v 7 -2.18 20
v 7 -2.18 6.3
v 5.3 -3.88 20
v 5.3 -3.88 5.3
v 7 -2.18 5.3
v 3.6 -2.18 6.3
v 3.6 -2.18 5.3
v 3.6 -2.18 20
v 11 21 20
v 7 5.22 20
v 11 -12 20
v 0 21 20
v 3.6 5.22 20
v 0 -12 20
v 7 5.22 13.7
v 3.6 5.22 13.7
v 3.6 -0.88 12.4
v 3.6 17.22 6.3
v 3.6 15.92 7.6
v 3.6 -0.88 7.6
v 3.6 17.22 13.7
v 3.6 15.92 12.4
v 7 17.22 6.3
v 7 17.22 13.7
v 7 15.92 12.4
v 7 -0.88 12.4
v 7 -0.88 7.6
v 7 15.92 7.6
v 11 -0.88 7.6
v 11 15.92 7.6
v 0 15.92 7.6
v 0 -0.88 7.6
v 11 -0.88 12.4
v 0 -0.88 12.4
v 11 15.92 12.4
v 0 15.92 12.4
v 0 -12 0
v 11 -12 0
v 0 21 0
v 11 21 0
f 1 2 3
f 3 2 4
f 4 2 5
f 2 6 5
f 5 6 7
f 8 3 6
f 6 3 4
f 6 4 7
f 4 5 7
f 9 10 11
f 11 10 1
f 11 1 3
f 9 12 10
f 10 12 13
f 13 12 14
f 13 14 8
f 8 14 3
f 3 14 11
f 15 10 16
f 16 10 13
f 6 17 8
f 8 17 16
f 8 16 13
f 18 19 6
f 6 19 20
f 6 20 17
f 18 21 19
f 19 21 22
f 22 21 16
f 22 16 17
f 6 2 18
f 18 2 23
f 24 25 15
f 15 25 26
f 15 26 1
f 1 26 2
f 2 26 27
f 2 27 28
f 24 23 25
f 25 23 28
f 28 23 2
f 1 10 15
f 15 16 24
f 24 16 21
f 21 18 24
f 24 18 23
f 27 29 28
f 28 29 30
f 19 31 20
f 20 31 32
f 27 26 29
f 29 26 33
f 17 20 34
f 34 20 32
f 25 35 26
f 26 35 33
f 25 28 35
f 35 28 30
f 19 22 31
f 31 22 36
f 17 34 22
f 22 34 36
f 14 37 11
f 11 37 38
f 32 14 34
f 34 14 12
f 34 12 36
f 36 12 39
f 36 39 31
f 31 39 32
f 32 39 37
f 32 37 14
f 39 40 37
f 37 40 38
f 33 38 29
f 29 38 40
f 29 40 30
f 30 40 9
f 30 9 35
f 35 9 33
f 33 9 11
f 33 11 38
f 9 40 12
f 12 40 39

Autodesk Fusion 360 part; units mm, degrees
sketch "Plate" plane through (0, 0, 0) normal (0, 1, 0) x (1, 0, 0)
  line L0 (0, 0) -> (11, 0)
  line L1 (11, 0) -> (11, -20)
  line L2 (11, -20) -> (0, -20)
  line L3 (0, -20) -> (0, 0)
  dimension "d174" = 11
  dimension "d175" = 20
extrude "Plate (1)" add sketch "Plate" along normal mid plane 33 from surface at 4.5
sketch "Screw hole" plane through (0, 0, 0) normal (0, 1, 0) x (1, 0, 0)
  line L0 (-1, -7.6) -> (12, -7.6)
  line L1 (12, -7.6) -> (12, -12.4)
  line L2 (12, -12.4) -> (-1, -12.4)
  line L3 (-1, -12.4) -> (-1, -7.6)
  dimension "d179" = 12
  dimension "d180" = 7.6
  dimension "d181" = 13
  dimension "d182" = 4.8
extrude "Screw hole (1)" cut sketch "Screw hole" along normal mid plane 16.8 from surface at 7.52
sketch "Nut cavity" plane through (0, 0, 0) normal (0, 1, 0) x (1, 0, 0)
  line L0 (3.6, -6.3) -> (7, -6.3)
  line L1 (7, -6.3) -> (7, -13.7)
  line L2 (7, -13.7) -> (3.6, -13.7)
  line L3 (3.6, -13.7) -> (3.6, -6.3)
  dimension "d186" = 7
  dimension "d187" = 6.3
  dimension "d188" = 3.4
  dimension "d189" = 7.4
extrude "Nut cavity (1)" cut sketch "Nut cavity" along normal mid plane 19.4 from surface at 7.52
sketch "Nut entry" plane through (0, 0, 0) normal (0, 1, 0) x (1, 0, 0)
  line L0 (3.6, -12.7) -> (7, -12.7)
  line L1 (7, -12.7) -> (7, -21)
  line L2 (7, -21) -> (3.6, -21)
  line L3 (3.6, -21) -> (3.6, -12.7)
  dimension "d193" = 7
  dimension "d194" = 12.7
  dimension "d195" = 3.4
  dimension "d196" = 8.3
extrude "Nut entry (1)" cut sketch "Nut entry" along normal mid plane 7.4 from surface at 1.52
sketch "Cavity roof" plane through (0, 0, 0) normal (0, 0, 1) x (1, 0, 0)
  line L0 (3.6, -2.18) -> (7, -2.18)
  line L1 (7, -2.18) -> (5.3, -3.88)
  line L2 (5.3, -3.88) -> (3.6, -2.18)
  dimension "d200" = 3.6
  dimension "d201" = 2.18
  dimension "d202" = 7
  dimension "d203" = 5.3
  dimension "d204" = 1.7
extrude "Cavity roof (1)" cut sketch "Cavity roof" along normal mid plane 15.7 from surface at 13.15
equation "bracketWidth = 24.0 mm" comment "bracket width across the upright"
equation "plateHeight = 20.0 mm" comment "plate height"
equation "plateInboardExtension = 9.0 mm" comment "extra plate toward the desk centre, where the channel reaches"
equation "boardThickness = 6.0 mm" comment "measured SKADIS panel thickness"
equation "screwLength = 15.0 mm" comment "measured decorative M4 screw"
equation "screwDiameter = 4.0 mm" comment "M4 shank"
equation "screwClearance = 0.8 mm" comment "slack around the shank"
equation "screwTipClearance = 2.0 mm" comment "tip stops this short of the plate's back face"
equation "screwSlotWidth = screwDiameter + screwClearance" comment "screw relief slot height"
equation "nutAcrossFlats = 7.0 mm" comment "M4 square nut across flats"
equation "nutThickness = 3.0 mm" comment "M4 square nut thickness"
equation "nutChannelClearance = 0.4 mm" comment "slack around the nut in its channel"
equation "nutChannelHeight = nutAcrossFlats + nutChannelClearance" comment "channel height; under the nut's diagonal so it cannot turn"
equation "plateThickness = screwLength - boardThickness + screwTipClearance" comment "derived: deep enough to swallow the screw"
equation "mountTravel = 12.0 mm" comment "left-right adjustment"
equation "nutChannelLength = mountTravel + nutAcrossFlats + nutChannelClearance" comment "channel length along the plate"
equation "screwSlotLength = mountTravel + screwSlotWidth" comment "relief slot length along the plate"
equation "topMountZ = 10.0 mm" comment "top channel centre"
equation "mountOffsetY = 7.52 mm" comment "channel centre on the board's grid"
equation "slotOvershoot = 1.0 mm" comment "cuts reach past the faces they cut"
equation "nutCavityClearance = 0.4 mm" comment "slack across the nut's thickness"
equation "nutWallThickness = 4.0 mm" comment "wall in front of the nut; the screw pulls the nut against it"
equation "nutCavityDepth = nutThickness + nutCavityClearance" comment "cavity depth"
equation "nutRoofDepth = nutCavityDepth / 2" comment "45 deg roof beyond the cavity's outboard end, so it prints unsupported"
equation "d174 = plateThickness"
equation "d175 = plateHeight"
equation "d176 = plateInboardExtension / 2"
equation "d177 = bracketWidth + plateInboardExtension"
equation "d179 = plateThickness + slotOvershoot"
equation "d180 = topMountZ - screwSlotWidth / 2"
equation "d181 = plateThickness + 2 * slotOvershoot"
equation "d182 = screwSlotWidth"
equation "d183 = mountOffsetY"
equation "d184 = screwSlotLength"
equation "d186 = plateThickness - nutWallThickness"
equation "d187 = topMountZ - nutChannelHeight / 2"
equation "d188 = nutCavityDepth"
equation "d189 = nutChannelHeight"
equation "d190 = mountOffsetY"
equation "d191 = nutChannelLength"
equation "d193 = plateThickness - nutWallThickness"
equation "d194 = topMountZ + nutChannelHeight / 2 - slotOvershoot"
equation "d195 = nutCavityDepth"
equation "d196 = plateHeight - topMountZ - nutChannelHeight / 2 + 2 * slotOvershoot"
equation "d197 = mountOffsetY - mountTravel / 2"
equation "d198 = nutChannelHeight"
equation "d200 = plateThickness - nutWallThickness - nutCavityDepth"
equation "d201 = -( mountOffsetY - nutChannelLength / 2 )"
equation "d202 = plateThickness - nutWallThickness"
equation "d203 = plateThickness - nutWallThickness - nutCavityDepth / 2"
equation "d204 = nutRoofDepth"
equation "d205 = ( topMountZ - nutChannelHeight / 2 + plateHeight ) / 2"
equation "d206 = plateHeight - topMountZ + nutChannelHeight / 2 + 2 * slotOvershoot"
